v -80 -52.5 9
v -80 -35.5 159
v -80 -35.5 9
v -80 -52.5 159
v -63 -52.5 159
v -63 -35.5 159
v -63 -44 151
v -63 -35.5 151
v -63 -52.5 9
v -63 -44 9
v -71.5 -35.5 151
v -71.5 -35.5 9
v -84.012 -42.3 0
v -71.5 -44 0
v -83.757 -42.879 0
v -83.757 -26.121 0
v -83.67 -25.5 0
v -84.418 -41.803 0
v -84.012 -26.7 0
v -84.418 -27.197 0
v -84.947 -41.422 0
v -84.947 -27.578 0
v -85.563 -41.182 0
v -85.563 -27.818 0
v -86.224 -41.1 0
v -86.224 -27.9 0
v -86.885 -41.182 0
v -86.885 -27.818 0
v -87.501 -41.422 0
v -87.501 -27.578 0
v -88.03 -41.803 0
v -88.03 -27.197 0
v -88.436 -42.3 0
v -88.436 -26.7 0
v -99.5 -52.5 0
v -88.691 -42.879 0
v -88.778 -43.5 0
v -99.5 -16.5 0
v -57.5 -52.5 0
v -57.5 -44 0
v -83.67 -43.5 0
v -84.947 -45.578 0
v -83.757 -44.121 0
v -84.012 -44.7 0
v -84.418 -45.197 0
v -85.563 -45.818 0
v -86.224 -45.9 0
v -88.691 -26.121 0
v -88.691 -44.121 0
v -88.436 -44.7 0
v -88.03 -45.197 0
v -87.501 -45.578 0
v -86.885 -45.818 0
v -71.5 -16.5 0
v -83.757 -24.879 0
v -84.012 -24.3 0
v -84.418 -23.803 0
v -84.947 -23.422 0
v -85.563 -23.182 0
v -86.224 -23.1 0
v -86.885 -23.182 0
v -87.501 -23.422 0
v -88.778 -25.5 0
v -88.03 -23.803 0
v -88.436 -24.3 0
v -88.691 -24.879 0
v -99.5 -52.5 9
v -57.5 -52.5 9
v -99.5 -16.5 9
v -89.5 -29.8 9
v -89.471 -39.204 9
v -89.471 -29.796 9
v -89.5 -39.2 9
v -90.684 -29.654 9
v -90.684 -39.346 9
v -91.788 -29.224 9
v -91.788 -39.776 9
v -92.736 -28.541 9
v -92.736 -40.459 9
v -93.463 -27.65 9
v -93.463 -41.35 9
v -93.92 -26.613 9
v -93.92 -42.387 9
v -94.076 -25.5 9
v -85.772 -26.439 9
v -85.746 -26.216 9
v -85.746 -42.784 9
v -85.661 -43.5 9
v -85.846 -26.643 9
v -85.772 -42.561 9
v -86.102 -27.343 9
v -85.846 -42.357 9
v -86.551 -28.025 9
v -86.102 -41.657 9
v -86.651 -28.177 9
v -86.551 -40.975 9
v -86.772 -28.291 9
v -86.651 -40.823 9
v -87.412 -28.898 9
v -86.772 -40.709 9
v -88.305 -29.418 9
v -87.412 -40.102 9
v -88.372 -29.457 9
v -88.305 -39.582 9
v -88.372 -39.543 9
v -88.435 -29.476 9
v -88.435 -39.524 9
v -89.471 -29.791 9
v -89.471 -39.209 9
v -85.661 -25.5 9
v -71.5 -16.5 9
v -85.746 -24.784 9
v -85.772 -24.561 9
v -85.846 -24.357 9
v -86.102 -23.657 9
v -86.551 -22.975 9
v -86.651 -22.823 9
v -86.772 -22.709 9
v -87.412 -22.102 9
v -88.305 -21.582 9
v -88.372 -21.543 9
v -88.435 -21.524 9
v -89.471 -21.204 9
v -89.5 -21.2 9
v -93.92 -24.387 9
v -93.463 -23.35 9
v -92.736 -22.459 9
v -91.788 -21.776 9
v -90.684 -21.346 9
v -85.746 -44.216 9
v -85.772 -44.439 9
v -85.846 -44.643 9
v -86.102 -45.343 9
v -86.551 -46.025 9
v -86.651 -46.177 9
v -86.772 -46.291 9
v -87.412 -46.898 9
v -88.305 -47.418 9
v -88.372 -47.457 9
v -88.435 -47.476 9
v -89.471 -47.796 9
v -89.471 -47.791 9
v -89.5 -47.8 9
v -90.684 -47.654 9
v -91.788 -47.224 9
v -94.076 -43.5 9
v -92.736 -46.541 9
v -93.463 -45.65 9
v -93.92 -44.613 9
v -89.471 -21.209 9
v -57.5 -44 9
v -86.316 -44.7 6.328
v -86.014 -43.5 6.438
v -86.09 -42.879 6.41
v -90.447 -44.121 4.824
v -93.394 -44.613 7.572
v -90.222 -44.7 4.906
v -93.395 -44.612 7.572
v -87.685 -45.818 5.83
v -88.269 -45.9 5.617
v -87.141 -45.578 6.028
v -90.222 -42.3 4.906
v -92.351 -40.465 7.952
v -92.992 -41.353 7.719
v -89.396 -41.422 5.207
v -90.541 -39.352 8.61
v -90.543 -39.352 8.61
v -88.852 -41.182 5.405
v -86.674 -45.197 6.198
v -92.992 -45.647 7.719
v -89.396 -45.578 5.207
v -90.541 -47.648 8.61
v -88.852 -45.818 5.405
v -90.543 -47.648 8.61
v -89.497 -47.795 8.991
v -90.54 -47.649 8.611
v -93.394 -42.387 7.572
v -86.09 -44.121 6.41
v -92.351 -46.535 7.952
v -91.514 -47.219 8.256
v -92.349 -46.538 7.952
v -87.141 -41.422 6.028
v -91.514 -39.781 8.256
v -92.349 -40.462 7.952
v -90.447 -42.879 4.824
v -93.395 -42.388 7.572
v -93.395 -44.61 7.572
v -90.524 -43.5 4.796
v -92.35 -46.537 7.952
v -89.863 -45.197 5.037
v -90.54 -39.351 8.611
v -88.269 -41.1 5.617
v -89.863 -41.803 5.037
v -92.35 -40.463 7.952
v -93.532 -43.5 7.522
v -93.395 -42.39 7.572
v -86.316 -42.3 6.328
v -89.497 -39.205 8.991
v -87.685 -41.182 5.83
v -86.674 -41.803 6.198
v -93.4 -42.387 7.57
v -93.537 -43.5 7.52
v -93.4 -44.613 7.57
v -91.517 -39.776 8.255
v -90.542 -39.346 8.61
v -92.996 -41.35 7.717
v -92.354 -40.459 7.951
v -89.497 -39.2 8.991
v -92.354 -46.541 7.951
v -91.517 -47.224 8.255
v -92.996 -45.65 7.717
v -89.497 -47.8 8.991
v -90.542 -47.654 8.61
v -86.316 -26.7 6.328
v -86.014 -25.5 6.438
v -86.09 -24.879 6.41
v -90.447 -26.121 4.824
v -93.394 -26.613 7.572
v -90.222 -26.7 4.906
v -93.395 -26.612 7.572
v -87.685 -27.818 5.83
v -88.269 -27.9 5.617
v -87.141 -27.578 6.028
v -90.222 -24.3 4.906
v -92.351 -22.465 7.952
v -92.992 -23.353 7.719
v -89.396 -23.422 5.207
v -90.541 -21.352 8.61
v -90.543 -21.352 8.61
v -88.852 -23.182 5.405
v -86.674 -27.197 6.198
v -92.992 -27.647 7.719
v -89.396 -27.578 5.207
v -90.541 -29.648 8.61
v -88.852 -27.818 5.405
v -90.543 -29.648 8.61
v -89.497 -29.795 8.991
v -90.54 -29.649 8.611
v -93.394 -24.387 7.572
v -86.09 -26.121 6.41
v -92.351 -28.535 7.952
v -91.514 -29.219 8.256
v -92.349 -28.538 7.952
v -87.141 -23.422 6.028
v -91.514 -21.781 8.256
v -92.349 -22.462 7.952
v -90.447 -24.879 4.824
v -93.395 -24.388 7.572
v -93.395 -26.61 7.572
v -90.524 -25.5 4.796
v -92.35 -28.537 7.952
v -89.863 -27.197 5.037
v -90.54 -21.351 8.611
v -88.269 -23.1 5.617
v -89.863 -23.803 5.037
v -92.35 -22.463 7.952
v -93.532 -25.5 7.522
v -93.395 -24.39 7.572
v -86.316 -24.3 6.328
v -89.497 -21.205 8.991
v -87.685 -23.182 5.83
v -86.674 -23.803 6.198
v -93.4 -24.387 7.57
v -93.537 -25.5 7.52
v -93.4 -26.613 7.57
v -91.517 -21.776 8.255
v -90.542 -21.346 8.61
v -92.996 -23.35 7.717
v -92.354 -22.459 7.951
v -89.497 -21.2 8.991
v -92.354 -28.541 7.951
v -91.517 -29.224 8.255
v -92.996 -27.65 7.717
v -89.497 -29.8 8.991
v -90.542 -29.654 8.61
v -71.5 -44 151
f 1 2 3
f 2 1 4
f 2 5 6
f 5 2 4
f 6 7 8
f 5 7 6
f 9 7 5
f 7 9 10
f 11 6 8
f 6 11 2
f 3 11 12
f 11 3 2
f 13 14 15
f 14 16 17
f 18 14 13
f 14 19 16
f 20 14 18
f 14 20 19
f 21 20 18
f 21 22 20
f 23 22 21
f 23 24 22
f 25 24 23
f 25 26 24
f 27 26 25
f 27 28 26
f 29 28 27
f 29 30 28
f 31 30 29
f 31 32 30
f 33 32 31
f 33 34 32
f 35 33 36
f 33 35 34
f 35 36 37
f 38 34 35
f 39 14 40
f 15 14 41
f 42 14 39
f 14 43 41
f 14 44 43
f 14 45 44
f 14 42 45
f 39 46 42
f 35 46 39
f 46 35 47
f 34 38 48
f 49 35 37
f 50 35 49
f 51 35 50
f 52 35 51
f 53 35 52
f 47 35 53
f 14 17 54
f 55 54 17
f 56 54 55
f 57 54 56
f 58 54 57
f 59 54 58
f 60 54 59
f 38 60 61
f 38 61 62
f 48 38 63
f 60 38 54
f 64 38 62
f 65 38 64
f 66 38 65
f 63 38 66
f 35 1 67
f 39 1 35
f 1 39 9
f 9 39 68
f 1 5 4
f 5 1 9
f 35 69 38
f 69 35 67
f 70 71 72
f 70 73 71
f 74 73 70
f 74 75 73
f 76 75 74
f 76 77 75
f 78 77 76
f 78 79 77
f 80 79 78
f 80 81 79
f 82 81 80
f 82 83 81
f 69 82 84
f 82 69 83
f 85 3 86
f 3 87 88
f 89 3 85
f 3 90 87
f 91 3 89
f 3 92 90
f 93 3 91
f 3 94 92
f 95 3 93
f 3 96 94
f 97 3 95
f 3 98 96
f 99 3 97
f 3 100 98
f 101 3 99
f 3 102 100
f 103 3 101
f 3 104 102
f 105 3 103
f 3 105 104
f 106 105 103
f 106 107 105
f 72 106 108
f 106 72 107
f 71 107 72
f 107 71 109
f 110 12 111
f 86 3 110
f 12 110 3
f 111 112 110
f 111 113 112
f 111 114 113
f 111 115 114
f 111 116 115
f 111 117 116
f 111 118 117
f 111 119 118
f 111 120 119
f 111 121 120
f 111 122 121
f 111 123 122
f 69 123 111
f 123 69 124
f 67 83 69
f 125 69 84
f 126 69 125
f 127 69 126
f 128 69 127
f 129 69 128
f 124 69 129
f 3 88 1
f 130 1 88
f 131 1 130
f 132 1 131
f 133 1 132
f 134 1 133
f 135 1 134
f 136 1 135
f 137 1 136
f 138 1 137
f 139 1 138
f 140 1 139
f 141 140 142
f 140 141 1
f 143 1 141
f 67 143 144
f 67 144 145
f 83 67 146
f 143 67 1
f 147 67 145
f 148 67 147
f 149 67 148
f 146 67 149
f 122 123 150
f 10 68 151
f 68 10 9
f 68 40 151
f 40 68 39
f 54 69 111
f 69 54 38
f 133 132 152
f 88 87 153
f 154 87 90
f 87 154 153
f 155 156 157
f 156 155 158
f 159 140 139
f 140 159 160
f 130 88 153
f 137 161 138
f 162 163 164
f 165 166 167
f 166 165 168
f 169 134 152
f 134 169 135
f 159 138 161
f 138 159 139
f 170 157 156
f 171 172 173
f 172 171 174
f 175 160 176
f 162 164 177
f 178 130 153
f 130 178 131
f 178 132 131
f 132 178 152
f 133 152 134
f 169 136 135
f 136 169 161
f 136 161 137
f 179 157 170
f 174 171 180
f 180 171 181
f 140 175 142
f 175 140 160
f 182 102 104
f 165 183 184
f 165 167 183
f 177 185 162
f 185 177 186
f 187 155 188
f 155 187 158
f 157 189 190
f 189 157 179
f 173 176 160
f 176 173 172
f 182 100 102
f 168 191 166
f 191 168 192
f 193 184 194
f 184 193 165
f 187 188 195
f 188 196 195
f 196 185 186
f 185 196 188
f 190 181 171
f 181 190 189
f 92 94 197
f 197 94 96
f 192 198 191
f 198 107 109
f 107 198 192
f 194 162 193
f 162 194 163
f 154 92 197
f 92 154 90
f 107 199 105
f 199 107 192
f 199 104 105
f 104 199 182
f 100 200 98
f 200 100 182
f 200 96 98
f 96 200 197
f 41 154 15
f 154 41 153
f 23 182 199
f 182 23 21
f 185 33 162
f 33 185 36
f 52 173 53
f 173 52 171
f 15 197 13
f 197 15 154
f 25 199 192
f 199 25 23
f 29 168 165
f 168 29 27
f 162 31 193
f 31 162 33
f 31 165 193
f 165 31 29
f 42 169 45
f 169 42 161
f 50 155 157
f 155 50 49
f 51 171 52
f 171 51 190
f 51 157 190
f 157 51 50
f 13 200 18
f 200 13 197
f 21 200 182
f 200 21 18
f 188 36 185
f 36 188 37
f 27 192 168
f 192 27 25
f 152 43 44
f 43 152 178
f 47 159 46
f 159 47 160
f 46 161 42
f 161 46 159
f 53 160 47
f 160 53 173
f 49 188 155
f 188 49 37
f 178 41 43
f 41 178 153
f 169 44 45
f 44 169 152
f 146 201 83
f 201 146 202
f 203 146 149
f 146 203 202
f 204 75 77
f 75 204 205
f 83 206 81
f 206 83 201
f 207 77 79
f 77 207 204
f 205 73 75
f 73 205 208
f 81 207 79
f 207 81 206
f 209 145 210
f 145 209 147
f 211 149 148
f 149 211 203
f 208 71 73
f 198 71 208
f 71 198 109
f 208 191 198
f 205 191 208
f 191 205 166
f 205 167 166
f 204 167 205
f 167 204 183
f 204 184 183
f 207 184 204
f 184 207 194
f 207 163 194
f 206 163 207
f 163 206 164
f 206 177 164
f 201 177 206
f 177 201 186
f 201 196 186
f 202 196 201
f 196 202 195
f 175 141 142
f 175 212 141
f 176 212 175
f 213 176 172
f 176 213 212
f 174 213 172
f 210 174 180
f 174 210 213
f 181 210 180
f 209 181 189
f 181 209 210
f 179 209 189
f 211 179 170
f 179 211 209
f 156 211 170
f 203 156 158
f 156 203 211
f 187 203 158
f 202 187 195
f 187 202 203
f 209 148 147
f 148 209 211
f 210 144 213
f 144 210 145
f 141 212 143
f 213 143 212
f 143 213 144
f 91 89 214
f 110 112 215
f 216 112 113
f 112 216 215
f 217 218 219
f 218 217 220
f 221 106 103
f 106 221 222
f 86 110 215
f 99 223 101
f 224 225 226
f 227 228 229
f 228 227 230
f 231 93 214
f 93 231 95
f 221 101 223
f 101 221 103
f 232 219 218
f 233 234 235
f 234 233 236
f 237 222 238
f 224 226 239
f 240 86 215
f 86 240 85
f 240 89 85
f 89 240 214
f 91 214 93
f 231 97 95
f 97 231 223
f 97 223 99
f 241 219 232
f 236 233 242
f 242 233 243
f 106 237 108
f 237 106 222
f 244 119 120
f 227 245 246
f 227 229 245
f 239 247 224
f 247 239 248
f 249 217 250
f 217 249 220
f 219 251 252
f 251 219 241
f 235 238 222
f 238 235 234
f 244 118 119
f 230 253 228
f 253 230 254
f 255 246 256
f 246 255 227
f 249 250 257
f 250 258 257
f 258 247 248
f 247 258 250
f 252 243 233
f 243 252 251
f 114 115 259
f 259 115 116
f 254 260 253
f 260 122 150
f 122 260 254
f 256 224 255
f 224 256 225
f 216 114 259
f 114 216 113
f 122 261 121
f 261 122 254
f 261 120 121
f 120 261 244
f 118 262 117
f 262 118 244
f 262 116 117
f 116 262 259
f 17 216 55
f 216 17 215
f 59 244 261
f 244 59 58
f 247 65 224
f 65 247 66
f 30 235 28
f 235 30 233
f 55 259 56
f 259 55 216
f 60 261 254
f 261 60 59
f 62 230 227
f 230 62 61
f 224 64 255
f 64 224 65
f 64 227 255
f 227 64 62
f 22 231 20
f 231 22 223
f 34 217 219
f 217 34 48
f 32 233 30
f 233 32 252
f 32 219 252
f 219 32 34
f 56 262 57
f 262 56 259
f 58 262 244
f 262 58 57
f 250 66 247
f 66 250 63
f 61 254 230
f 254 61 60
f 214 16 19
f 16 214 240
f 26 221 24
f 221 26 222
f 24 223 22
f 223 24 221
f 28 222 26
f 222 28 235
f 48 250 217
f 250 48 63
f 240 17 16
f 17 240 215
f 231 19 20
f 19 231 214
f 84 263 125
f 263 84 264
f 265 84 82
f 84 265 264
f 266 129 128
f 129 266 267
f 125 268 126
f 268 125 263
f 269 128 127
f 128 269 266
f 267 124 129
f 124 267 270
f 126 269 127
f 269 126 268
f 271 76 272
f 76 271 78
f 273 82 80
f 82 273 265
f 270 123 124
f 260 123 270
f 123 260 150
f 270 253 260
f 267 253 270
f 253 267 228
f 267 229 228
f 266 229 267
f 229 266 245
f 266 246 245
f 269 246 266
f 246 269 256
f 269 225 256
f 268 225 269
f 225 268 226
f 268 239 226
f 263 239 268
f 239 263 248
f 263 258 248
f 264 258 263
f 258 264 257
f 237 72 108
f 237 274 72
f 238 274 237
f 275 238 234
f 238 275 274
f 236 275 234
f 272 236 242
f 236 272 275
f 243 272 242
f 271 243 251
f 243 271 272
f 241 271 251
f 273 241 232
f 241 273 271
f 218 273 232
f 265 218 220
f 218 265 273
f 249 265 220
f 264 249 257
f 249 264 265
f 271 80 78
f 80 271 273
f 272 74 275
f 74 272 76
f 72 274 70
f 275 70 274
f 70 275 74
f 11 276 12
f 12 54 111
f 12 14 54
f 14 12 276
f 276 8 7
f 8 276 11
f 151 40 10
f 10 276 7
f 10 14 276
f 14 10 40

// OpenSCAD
atx_h=150;
atx_d=86;
atx_w=141;

felt_w=19.5;
felt_t=1;

foot_t=9;
wall=8;

ep=0.01;

num8slot=4.8;

module num8counter()
//countersink shape
{
    hh=3.6;
    rr=8.6/2;
    translate([0,0,-hh])
    {
        cylinder(r1=num8slot/2,r2=rr,h=hh,$fn=24);
        translate([0,0,-foot_t])cylinder(r1=num8slot/2,r2=num8slot/2,h=hh+foot_t,$fn=24);
        translate([0,0,hh-ep])cylinder(r=rr,h=foot_t,$fn=24);
    }
}

module atx_supply()
{
    color([.6,.6,.6])translate([0,0,atx_h/2])cube([atx_w,atx_d,atx_h],center=true);
}

module bracket()
{
    //top portion
    ww=atx_w+wall*2+felt_t*2+felt_t;
    hh=atx_h+wall+felt_t;
    zz=atx_h+felt_t;
    yy=atx_d/2+felt_t;
    xx=atx_w/2+felt_t;
    //translate([0,-(yy),zz])cube([ww,wall*2+felt_t,wall*2+felt_t],center=true);
    translate([-xx,-yy,hh/2])cube([wall*2+felt_t,wall*2+felt_t,hh],center=true);
    //translate([xx,-yy,hh/2])cube([wall*2+felt_t,wall*2+felt_t,hh],center=true);
    //foot
    translate([-(xx+7),18-(yy+(wall+felt_t/2)),foot_t/2])cube([42,36,foot_t],center=true);
    //translate([(xx),9-(yy+(wall+felt_t/2)),foot_t/2])cube([42,36,foot_t],center=true);
}
module complete()
{
    difference()
    {
        bracket();
        translate([0,0,atx_h/2])cube([atx_w+felt_t*2,atx_d+felt_t*2,atx_h+felt_t*2],center=true);
        translate([-(atx_w/2+wall*2+3),9-(atx_d/2+felt_t+(wall+felt_t/2)),foot_t])rotate([0,-20,0])num8counter();
        translate([-(atx_w/2+wall*2+3),27-(atx_d/2+felt_t+(wall+felt_t/2)),foot_t])rotate([0,-20,0])num8counter();
    }
}

complete();

//atx_supply();
    
